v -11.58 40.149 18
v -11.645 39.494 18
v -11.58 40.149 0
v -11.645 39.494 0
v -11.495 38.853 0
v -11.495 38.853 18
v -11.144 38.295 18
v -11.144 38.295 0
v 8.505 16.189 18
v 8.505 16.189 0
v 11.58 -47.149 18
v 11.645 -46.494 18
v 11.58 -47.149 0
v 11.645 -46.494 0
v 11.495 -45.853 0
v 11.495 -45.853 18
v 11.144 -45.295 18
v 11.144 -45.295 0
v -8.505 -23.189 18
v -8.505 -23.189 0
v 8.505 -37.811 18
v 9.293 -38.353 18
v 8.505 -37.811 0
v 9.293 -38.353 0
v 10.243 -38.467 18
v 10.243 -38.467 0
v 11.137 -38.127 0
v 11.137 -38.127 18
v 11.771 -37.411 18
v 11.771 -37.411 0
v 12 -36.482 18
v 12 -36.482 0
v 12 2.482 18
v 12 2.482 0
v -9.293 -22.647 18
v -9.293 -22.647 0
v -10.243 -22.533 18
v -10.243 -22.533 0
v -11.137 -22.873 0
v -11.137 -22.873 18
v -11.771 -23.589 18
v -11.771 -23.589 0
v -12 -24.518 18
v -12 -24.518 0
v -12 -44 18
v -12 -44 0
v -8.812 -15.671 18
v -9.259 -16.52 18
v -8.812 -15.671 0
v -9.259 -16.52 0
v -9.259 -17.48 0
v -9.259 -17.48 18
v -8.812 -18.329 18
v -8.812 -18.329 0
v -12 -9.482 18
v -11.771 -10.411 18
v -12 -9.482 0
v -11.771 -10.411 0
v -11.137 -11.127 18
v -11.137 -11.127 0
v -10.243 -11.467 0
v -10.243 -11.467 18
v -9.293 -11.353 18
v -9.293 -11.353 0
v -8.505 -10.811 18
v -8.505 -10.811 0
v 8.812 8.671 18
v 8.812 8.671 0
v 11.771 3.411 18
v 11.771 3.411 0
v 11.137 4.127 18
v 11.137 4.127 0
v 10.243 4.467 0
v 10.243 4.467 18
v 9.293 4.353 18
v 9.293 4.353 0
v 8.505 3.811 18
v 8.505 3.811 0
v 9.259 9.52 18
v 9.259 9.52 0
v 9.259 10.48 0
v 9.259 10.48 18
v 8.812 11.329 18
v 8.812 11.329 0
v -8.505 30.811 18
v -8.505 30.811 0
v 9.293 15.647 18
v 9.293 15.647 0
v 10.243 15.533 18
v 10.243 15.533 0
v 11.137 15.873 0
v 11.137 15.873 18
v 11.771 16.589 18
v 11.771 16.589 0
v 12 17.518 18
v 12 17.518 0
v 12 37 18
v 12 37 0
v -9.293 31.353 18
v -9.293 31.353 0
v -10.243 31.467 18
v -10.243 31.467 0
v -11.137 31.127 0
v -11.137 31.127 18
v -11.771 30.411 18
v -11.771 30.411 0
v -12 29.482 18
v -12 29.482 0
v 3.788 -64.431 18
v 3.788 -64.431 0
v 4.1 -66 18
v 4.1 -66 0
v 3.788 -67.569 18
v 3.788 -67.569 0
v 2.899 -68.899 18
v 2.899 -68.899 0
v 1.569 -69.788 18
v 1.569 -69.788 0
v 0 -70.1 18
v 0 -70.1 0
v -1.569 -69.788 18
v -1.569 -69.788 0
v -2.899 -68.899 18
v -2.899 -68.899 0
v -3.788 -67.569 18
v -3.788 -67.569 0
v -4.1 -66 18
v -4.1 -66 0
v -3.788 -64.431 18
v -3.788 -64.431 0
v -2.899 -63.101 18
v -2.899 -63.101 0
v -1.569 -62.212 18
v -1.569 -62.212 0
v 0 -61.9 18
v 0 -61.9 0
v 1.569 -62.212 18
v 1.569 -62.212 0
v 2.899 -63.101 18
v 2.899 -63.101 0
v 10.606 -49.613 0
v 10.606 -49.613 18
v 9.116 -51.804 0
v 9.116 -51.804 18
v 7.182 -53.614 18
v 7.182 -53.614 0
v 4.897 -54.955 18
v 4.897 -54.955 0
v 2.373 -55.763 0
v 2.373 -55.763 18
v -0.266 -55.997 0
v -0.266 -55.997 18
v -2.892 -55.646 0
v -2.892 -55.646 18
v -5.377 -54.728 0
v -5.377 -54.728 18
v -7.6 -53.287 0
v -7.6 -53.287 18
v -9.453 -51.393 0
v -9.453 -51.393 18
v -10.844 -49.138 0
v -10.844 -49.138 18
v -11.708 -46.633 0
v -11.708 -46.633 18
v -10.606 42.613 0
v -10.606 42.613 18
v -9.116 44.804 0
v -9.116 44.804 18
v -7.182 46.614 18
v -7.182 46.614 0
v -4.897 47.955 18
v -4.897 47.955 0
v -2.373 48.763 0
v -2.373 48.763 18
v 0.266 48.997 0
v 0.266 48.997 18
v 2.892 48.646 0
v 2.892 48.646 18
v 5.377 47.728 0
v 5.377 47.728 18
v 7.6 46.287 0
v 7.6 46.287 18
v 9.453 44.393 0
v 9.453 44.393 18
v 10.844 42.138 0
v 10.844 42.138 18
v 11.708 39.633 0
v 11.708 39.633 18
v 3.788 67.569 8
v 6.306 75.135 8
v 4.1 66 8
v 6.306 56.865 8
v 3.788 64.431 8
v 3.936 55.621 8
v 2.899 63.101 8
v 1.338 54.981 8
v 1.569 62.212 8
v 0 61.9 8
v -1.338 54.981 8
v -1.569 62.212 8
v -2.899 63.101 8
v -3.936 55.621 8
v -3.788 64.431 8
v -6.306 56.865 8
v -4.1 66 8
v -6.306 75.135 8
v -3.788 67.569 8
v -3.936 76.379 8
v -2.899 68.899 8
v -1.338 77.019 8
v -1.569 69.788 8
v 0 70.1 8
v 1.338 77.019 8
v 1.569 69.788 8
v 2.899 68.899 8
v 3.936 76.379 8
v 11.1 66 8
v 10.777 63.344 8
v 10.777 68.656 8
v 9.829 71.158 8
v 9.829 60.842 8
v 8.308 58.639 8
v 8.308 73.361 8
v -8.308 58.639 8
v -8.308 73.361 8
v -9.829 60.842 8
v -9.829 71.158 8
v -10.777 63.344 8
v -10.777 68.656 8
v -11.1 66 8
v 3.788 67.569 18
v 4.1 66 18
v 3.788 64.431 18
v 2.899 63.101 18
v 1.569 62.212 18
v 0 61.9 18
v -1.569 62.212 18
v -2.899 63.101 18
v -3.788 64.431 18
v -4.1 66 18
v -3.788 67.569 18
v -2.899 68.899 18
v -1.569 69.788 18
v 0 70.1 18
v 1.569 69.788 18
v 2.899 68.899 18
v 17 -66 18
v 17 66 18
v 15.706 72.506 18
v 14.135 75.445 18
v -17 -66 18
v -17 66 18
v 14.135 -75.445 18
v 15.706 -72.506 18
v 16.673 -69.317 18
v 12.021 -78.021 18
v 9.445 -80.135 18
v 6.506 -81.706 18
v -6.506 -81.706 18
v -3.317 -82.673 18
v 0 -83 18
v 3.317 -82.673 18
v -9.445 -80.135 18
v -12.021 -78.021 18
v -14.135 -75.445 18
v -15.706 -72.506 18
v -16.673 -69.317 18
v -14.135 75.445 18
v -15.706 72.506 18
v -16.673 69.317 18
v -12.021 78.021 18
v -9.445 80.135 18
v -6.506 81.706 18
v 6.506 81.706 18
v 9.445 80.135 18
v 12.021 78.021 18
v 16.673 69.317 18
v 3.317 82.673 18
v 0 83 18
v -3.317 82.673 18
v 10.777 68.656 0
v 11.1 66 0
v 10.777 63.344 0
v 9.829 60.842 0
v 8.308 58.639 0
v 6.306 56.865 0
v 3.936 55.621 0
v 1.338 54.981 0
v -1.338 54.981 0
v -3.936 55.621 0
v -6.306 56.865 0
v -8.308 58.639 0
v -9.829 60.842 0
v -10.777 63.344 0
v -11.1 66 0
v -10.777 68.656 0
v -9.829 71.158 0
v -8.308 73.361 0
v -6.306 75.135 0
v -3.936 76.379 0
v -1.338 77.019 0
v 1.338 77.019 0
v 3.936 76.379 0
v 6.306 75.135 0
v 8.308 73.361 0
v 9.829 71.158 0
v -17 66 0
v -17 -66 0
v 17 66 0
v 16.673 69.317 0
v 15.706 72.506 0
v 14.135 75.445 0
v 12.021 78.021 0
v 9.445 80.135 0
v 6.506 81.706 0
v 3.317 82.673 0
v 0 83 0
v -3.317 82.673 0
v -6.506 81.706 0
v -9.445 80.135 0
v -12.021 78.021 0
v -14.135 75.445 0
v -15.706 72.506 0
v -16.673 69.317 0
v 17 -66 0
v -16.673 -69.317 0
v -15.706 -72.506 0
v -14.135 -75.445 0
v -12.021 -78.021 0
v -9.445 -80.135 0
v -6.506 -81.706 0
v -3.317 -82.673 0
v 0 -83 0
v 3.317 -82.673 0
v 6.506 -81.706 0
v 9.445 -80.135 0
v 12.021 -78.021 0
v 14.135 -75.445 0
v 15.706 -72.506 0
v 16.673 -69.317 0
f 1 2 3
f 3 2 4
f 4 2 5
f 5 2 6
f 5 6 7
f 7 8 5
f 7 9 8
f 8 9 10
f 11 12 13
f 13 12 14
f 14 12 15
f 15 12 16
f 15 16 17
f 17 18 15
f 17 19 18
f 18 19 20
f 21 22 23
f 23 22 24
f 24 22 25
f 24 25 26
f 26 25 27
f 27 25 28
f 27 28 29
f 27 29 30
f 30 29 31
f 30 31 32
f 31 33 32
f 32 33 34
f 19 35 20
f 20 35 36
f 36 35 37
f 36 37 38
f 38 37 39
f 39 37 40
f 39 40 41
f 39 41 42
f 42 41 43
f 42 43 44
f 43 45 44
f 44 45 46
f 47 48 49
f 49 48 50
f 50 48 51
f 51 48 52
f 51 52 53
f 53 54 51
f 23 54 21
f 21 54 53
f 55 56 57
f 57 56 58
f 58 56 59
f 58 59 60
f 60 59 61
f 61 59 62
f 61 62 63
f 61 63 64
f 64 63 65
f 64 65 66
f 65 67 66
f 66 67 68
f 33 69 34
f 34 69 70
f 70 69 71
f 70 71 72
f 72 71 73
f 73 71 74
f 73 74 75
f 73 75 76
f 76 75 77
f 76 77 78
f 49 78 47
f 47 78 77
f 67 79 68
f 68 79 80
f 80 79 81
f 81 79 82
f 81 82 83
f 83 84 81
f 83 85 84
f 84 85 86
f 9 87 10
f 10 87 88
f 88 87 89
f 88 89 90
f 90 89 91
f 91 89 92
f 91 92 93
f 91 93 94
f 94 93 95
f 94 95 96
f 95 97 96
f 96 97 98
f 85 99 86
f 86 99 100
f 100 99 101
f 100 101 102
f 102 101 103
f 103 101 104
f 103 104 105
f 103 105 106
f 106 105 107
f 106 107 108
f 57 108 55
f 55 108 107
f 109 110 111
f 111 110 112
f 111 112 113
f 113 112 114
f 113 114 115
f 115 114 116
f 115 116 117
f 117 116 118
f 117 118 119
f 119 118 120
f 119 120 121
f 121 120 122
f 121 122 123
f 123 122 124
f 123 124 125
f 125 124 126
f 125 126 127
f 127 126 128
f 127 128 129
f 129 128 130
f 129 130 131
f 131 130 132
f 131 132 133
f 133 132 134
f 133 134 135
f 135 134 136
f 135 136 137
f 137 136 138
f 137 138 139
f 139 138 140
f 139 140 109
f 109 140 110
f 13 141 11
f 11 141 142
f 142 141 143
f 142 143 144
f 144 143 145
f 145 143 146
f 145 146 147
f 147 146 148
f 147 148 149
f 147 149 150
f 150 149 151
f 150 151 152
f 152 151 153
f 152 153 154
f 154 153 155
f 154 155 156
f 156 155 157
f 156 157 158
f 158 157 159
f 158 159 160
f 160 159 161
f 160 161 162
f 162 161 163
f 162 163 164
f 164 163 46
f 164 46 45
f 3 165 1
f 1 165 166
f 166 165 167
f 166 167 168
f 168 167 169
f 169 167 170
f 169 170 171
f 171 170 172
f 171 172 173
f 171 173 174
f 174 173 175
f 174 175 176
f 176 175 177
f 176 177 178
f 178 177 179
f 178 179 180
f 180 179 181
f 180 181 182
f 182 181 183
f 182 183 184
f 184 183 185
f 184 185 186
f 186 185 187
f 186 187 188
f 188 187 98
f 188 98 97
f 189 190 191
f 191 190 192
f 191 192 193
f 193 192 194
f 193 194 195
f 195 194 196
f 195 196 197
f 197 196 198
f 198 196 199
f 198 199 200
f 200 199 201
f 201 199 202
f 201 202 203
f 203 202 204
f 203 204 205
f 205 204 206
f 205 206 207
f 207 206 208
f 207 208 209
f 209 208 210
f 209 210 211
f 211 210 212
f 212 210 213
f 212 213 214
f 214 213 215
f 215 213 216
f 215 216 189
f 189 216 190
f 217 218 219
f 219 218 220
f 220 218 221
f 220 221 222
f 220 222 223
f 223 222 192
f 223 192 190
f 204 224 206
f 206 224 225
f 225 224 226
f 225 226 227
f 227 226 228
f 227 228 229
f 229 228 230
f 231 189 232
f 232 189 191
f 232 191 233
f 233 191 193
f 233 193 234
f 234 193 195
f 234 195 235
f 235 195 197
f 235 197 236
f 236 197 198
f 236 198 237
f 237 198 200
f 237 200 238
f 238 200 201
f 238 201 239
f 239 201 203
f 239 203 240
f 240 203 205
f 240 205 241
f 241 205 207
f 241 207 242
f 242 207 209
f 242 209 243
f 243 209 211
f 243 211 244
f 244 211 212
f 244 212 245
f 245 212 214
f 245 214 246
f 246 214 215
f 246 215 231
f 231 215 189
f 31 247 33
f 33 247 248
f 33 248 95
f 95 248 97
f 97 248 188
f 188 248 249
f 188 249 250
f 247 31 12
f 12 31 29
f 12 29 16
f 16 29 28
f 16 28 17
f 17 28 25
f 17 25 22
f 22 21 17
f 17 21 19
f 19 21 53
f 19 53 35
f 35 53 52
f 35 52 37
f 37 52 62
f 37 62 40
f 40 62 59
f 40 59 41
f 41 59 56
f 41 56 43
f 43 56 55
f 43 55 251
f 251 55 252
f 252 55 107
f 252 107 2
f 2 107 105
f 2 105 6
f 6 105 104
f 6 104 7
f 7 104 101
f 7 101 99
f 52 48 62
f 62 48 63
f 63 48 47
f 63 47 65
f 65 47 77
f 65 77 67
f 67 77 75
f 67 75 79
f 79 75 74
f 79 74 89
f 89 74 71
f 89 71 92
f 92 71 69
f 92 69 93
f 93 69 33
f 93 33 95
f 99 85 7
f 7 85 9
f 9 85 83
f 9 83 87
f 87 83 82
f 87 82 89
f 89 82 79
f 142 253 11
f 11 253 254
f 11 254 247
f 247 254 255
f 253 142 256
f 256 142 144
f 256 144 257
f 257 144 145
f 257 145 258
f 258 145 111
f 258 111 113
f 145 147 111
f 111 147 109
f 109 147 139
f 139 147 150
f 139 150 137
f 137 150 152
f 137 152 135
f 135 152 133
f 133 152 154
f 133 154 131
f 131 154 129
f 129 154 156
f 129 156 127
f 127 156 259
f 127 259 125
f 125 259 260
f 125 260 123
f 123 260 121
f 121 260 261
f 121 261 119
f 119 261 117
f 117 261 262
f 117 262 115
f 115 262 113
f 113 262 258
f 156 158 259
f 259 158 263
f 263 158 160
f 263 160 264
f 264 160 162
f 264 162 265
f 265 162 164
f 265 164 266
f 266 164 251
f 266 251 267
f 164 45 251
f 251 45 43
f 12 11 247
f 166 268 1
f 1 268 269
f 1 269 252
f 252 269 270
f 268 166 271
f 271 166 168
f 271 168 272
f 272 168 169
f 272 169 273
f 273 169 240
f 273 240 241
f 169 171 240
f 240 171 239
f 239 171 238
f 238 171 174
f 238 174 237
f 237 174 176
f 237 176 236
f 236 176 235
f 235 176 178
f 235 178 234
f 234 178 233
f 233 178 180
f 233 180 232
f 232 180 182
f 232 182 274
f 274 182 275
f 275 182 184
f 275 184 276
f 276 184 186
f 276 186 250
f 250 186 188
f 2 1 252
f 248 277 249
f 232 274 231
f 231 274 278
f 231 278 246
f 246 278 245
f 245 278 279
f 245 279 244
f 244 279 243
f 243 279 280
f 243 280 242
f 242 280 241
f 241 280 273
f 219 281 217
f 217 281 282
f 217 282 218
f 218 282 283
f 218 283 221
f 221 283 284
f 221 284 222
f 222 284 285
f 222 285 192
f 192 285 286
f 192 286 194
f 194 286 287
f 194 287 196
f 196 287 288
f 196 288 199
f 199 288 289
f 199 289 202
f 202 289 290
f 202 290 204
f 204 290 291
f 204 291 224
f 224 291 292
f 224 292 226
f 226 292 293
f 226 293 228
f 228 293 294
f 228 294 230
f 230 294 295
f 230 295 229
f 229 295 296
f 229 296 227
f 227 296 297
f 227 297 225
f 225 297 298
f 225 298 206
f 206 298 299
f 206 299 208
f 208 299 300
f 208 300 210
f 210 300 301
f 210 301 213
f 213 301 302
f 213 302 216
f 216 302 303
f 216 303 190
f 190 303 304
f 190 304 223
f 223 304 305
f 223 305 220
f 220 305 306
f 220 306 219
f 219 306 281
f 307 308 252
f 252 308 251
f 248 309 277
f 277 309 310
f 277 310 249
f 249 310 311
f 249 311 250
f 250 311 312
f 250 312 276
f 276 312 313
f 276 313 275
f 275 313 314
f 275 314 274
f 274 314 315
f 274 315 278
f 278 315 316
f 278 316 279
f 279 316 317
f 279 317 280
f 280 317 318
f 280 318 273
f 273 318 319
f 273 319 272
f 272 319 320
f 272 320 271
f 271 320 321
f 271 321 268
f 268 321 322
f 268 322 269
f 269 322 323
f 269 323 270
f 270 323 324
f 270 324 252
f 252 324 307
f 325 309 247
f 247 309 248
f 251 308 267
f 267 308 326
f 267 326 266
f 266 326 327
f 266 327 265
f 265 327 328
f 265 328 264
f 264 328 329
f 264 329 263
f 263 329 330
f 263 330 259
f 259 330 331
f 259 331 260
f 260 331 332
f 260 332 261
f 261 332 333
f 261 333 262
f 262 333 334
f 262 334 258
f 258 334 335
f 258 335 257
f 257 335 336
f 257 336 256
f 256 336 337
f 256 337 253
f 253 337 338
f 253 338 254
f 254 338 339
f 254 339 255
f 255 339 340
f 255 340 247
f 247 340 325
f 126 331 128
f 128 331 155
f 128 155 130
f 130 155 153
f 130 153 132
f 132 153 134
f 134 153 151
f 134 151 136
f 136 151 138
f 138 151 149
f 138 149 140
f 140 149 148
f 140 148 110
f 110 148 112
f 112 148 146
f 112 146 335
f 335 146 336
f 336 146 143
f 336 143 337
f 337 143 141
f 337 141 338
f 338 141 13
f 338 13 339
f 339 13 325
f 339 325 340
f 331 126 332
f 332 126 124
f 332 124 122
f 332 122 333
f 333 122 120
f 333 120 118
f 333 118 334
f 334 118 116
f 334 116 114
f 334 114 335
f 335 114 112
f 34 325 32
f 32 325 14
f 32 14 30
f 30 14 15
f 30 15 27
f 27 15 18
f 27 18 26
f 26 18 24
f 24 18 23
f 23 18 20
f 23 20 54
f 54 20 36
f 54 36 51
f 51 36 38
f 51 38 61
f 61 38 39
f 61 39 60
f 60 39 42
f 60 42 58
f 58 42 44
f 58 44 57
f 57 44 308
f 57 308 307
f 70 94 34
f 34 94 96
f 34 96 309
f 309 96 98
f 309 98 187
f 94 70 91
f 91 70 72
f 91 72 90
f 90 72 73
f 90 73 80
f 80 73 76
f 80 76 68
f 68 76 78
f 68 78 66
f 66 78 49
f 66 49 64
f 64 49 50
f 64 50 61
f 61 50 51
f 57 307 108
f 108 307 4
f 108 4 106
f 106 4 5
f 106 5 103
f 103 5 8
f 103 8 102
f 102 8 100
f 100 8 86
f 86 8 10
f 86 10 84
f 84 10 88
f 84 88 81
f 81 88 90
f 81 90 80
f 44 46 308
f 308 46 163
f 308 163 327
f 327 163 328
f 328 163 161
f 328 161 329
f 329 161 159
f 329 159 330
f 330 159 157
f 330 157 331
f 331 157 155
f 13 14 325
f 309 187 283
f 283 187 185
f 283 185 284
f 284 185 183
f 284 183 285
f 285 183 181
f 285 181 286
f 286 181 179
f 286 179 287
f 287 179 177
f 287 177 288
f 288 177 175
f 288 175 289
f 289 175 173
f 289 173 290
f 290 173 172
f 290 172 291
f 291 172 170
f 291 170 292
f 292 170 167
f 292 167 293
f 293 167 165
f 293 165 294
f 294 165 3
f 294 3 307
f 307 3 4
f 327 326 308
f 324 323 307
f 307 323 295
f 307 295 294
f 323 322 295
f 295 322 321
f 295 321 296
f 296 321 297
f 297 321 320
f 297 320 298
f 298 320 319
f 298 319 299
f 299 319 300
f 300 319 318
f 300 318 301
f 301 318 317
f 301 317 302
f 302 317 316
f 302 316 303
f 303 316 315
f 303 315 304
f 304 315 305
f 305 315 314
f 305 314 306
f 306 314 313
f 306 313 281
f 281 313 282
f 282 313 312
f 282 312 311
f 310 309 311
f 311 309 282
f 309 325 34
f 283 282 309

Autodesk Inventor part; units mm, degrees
ref_plane "YZ Plane" through (0, 0, 0) normal (1, 0, 0) x (0, 1, 0)
ref_plane "XZ Plane" through (0, 0, 0) normal (0, 1, 0) x (-1, 0, 0)
ref_plane "XY Plane" through (0, 0, 0) normal (0, 0, 1) x (1, 0, 0)
sketch "Sketch1" plane through (0, 0, 0) normal (0, 0, 1) x (1, 0, 0)
  line L0 (0, 66) -> (0, -66) construction
  line L1 (-17, 66) -> (-17, -66)
  line L2 (17, -66) -> (17, 66)
  arc A0 (17, 66) -> (-17, 66) centre (0, 66) ccw
  arc A1 (-17, -66) -> (17, -66) centre (0, -66) ccw
  circle A2 centre (0, -66) radius 1.1
  circle A3 centre (0, 66) radius 11.1
  point P0 (0, 0)
  dimension "d0" = 66
  dimension "d1" = 34
  dimension "d2" = 2.2
  dimension "d3" = 22.2
  dimension "d40" = 17
extrude "Extrusion1" add sketch "Sketch1" along normal blind 8
sketch "Sketch2" plane through (0, 0, 8) normal (0, 0, 1) x (1, 0, 0)
  arc A0 (-17, -66) -> (17, -66) centre (0, -66) ccw projected
  line L0 (17, -66) -> (17, 66) projected
  arc A1 (17, 66) -> (-17, 66) centre (0, 66) ccw projected
  line L1 (-17, 66) -> (-17, -66) projected
  circle A2 centre (0, 66) radius 11.1 projected
  circle A3 centre (0, -66) radius 1.1 projected
  circle A4 centre (0, -66) radius 4.1
  circle A5 centre (0, 66) radius 4.1
  point P0 (0, 0)
  dimension "d6" = 8.2
  dimension "d12" = 8.2
extrude "Extrusion2" add sketch "Sketch2" along normal blind 10 contours L1 A1 L0 A0 | A2
sketch "Sketch3" plane through (0, 0, 18) normal (0, 0, 1) x (1, 0, 0)
  line L0 (17, -66) -> (17, 66) projected
  arc A0 (17, 66) -> (-17, 66) centre (0, 66) ccw projected
  line L1 (-17, 66) -> (-17, -66) projected
  arc A1 (-17, -66) -> (17, -66) centre (0, -66) ccw projected
  circle A2 centre (0, -66) radius 4.1 projected
  line L2 (0, 49) -> (0, -56) construction
  line L3 (-12, 37) -> (-12, -44)
  line L4 (12, -44) -> (12, 37)
  arc A3 (12, 37) -> (-12, 37) centre (0, 37) ccw
  arc A4 (-12, -44) -> (12, -44) centre (0, -44) ccw
  line L5 (-12, -44) -> (-12, -17)
  line L6 (12, 37) -> (12, 10)
  line L7 (12, -44) -> (-12, -17)
  line L8 (-12, -17) -> (12, 10)
  line L9 (12, 10) -> (-12, 37)
  line L10 (13.1211, 10.9965) -> (-11.8222, 39.0578)
  line L11 (10.8789, 9.0035) -> (-13.1211, 36.0035)
  line L12 (-13.1211, -16.0035) -> (10.8789, 10.9965)
  line L13 (11.8222, -46.0578) -> (-13.1211, -17.9965)
  line L14 (13.1211, -43.0035) -> (-10.8789, -16.0035)
  line L15 (-10.8789, -17.9965) -> (13.1211, 9.0035)
  point P0 (0, -3.5)
  point P1 (-12, -19.2578)
  point P2 (12, 7.7422)
  point P3 (-9.9931, -17)
  point P4 (12, -41.7422)
  point P5 (-12, -14.7422)
  point P6 (9.9931, 10)
  point P7 (-12, 34.7422)
  point P8 (12, 12.2578)
  dimension "d47" = 105
  dimension "d48" = 24
  dimension "d49" = 27
  dimension "d50" = 27
  dimension "d51" = 1.5
  dimension "d52" = 1.5
  dimension "d53" = 1.5
  dimension "d54" = 1.5
  dimension "d55" = 1.5
  dimension "d56" = 1.5
extrude "Extrusion3" cut sketch "Sketch3" against normal up to next contours L11 L12 L3 | A3 L4 L10 | L4 L14 L15 | L13 A4 L3
sketch "Sketch6" plane through (0, -66, 8) normal (0, 0, 1) x (1, 0, 0)
  circle A0 centre (0, 0) radius 4.1 projected
  circle A1 centre (0, 0) radius 1.1 projected
  point P0 (0, 66)
extrude "Extrusion6" cut sketch "Sketch6" against normal up to next contours A0 | A1
fillet "Fillet3" radius 2 10 edges at (-12, 34.7422, 9) (12, 12.2578, 9) (9.9931, 10, 9) (12, 7.7422, 9) (-12, -14.7422, 9) (-9.9931, -17, 9) (-12, -19.2578, 9) (12, -41.7422, 9) (11.8222, -46.0578, 9) (-11.8222, 39.0578, 9)
equation "\"d12\" = d6"
equation "\"d50\" = d49"
properties part number "CodoTrasero" material "PLA"
